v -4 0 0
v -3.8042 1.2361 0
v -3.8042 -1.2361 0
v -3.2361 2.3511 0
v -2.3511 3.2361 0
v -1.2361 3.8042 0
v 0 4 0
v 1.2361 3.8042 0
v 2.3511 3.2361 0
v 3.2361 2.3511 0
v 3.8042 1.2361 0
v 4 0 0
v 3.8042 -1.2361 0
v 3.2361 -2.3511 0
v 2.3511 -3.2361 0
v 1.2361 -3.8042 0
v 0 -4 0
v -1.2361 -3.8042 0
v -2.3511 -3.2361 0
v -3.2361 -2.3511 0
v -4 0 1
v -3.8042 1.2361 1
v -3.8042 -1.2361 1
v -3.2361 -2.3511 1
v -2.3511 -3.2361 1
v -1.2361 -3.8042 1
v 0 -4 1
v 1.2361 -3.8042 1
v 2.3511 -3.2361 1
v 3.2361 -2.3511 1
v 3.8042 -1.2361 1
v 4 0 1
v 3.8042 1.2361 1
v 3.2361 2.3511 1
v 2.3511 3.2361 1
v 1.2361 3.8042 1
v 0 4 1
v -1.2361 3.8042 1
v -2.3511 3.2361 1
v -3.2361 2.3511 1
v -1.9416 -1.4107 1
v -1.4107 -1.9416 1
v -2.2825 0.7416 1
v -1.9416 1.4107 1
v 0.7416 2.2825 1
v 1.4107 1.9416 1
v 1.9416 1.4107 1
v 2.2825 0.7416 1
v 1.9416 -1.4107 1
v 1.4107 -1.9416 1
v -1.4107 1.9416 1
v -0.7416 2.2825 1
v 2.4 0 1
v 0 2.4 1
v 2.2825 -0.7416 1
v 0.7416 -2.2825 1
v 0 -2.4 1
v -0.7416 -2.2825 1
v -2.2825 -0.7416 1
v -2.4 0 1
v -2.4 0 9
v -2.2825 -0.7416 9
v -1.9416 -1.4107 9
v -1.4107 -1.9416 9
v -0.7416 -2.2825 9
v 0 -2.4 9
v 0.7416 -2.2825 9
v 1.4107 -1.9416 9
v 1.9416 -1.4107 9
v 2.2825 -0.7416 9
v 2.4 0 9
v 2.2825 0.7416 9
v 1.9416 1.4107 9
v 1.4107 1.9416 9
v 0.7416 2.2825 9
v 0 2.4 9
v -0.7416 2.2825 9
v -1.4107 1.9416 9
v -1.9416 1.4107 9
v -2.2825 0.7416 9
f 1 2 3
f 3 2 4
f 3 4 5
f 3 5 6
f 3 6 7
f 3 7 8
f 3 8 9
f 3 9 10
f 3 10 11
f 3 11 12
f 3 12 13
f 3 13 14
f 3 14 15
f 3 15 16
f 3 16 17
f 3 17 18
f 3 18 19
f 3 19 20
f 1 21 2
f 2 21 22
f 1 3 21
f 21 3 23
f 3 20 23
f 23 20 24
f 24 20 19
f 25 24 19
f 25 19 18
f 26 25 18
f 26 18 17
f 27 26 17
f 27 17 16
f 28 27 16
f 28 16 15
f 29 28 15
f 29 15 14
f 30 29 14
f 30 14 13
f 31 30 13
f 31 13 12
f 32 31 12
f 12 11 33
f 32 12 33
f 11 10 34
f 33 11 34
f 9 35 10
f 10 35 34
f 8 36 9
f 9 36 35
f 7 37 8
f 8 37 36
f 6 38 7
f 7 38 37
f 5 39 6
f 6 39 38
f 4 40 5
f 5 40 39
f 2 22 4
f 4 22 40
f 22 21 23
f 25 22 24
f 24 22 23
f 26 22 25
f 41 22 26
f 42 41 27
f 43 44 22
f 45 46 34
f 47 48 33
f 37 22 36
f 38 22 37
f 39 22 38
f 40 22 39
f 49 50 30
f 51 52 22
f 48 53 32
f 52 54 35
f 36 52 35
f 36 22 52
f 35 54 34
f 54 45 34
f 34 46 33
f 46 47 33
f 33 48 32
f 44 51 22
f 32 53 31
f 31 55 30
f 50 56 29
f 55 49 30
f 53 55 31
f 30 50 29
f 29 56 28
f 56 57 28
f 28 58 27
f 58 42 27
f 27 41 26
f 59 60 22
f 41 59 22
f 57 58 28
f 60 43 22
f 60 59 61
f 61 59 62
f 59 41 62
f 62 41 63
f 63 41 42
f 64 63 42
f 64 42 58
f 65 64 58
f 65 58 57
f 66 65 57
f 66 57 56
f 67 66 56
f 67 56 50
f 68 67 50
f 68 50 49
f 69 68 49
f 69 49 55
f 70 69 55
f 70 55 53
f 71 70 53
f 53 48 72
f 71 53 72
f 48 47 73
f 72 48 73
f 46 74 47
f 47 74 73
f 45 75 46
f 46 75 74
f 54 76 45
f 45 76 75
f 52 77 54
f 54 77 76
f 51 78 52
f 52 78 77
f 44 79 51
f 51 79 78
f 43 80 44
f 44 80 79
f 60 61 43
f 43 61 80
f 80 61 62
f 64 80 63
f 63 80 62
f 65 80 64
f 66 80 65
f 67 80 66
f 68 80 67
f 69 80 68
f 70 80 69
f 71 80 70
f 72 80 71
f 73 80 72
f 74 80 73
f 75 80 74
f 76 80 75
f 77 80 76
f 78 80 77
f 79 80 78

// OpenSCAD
module littleButton(){
    cylinder(r=4, h=1, $fn=20);
    cylinder(r=2.4, h=9, $fn=20);
}

littleButton();
